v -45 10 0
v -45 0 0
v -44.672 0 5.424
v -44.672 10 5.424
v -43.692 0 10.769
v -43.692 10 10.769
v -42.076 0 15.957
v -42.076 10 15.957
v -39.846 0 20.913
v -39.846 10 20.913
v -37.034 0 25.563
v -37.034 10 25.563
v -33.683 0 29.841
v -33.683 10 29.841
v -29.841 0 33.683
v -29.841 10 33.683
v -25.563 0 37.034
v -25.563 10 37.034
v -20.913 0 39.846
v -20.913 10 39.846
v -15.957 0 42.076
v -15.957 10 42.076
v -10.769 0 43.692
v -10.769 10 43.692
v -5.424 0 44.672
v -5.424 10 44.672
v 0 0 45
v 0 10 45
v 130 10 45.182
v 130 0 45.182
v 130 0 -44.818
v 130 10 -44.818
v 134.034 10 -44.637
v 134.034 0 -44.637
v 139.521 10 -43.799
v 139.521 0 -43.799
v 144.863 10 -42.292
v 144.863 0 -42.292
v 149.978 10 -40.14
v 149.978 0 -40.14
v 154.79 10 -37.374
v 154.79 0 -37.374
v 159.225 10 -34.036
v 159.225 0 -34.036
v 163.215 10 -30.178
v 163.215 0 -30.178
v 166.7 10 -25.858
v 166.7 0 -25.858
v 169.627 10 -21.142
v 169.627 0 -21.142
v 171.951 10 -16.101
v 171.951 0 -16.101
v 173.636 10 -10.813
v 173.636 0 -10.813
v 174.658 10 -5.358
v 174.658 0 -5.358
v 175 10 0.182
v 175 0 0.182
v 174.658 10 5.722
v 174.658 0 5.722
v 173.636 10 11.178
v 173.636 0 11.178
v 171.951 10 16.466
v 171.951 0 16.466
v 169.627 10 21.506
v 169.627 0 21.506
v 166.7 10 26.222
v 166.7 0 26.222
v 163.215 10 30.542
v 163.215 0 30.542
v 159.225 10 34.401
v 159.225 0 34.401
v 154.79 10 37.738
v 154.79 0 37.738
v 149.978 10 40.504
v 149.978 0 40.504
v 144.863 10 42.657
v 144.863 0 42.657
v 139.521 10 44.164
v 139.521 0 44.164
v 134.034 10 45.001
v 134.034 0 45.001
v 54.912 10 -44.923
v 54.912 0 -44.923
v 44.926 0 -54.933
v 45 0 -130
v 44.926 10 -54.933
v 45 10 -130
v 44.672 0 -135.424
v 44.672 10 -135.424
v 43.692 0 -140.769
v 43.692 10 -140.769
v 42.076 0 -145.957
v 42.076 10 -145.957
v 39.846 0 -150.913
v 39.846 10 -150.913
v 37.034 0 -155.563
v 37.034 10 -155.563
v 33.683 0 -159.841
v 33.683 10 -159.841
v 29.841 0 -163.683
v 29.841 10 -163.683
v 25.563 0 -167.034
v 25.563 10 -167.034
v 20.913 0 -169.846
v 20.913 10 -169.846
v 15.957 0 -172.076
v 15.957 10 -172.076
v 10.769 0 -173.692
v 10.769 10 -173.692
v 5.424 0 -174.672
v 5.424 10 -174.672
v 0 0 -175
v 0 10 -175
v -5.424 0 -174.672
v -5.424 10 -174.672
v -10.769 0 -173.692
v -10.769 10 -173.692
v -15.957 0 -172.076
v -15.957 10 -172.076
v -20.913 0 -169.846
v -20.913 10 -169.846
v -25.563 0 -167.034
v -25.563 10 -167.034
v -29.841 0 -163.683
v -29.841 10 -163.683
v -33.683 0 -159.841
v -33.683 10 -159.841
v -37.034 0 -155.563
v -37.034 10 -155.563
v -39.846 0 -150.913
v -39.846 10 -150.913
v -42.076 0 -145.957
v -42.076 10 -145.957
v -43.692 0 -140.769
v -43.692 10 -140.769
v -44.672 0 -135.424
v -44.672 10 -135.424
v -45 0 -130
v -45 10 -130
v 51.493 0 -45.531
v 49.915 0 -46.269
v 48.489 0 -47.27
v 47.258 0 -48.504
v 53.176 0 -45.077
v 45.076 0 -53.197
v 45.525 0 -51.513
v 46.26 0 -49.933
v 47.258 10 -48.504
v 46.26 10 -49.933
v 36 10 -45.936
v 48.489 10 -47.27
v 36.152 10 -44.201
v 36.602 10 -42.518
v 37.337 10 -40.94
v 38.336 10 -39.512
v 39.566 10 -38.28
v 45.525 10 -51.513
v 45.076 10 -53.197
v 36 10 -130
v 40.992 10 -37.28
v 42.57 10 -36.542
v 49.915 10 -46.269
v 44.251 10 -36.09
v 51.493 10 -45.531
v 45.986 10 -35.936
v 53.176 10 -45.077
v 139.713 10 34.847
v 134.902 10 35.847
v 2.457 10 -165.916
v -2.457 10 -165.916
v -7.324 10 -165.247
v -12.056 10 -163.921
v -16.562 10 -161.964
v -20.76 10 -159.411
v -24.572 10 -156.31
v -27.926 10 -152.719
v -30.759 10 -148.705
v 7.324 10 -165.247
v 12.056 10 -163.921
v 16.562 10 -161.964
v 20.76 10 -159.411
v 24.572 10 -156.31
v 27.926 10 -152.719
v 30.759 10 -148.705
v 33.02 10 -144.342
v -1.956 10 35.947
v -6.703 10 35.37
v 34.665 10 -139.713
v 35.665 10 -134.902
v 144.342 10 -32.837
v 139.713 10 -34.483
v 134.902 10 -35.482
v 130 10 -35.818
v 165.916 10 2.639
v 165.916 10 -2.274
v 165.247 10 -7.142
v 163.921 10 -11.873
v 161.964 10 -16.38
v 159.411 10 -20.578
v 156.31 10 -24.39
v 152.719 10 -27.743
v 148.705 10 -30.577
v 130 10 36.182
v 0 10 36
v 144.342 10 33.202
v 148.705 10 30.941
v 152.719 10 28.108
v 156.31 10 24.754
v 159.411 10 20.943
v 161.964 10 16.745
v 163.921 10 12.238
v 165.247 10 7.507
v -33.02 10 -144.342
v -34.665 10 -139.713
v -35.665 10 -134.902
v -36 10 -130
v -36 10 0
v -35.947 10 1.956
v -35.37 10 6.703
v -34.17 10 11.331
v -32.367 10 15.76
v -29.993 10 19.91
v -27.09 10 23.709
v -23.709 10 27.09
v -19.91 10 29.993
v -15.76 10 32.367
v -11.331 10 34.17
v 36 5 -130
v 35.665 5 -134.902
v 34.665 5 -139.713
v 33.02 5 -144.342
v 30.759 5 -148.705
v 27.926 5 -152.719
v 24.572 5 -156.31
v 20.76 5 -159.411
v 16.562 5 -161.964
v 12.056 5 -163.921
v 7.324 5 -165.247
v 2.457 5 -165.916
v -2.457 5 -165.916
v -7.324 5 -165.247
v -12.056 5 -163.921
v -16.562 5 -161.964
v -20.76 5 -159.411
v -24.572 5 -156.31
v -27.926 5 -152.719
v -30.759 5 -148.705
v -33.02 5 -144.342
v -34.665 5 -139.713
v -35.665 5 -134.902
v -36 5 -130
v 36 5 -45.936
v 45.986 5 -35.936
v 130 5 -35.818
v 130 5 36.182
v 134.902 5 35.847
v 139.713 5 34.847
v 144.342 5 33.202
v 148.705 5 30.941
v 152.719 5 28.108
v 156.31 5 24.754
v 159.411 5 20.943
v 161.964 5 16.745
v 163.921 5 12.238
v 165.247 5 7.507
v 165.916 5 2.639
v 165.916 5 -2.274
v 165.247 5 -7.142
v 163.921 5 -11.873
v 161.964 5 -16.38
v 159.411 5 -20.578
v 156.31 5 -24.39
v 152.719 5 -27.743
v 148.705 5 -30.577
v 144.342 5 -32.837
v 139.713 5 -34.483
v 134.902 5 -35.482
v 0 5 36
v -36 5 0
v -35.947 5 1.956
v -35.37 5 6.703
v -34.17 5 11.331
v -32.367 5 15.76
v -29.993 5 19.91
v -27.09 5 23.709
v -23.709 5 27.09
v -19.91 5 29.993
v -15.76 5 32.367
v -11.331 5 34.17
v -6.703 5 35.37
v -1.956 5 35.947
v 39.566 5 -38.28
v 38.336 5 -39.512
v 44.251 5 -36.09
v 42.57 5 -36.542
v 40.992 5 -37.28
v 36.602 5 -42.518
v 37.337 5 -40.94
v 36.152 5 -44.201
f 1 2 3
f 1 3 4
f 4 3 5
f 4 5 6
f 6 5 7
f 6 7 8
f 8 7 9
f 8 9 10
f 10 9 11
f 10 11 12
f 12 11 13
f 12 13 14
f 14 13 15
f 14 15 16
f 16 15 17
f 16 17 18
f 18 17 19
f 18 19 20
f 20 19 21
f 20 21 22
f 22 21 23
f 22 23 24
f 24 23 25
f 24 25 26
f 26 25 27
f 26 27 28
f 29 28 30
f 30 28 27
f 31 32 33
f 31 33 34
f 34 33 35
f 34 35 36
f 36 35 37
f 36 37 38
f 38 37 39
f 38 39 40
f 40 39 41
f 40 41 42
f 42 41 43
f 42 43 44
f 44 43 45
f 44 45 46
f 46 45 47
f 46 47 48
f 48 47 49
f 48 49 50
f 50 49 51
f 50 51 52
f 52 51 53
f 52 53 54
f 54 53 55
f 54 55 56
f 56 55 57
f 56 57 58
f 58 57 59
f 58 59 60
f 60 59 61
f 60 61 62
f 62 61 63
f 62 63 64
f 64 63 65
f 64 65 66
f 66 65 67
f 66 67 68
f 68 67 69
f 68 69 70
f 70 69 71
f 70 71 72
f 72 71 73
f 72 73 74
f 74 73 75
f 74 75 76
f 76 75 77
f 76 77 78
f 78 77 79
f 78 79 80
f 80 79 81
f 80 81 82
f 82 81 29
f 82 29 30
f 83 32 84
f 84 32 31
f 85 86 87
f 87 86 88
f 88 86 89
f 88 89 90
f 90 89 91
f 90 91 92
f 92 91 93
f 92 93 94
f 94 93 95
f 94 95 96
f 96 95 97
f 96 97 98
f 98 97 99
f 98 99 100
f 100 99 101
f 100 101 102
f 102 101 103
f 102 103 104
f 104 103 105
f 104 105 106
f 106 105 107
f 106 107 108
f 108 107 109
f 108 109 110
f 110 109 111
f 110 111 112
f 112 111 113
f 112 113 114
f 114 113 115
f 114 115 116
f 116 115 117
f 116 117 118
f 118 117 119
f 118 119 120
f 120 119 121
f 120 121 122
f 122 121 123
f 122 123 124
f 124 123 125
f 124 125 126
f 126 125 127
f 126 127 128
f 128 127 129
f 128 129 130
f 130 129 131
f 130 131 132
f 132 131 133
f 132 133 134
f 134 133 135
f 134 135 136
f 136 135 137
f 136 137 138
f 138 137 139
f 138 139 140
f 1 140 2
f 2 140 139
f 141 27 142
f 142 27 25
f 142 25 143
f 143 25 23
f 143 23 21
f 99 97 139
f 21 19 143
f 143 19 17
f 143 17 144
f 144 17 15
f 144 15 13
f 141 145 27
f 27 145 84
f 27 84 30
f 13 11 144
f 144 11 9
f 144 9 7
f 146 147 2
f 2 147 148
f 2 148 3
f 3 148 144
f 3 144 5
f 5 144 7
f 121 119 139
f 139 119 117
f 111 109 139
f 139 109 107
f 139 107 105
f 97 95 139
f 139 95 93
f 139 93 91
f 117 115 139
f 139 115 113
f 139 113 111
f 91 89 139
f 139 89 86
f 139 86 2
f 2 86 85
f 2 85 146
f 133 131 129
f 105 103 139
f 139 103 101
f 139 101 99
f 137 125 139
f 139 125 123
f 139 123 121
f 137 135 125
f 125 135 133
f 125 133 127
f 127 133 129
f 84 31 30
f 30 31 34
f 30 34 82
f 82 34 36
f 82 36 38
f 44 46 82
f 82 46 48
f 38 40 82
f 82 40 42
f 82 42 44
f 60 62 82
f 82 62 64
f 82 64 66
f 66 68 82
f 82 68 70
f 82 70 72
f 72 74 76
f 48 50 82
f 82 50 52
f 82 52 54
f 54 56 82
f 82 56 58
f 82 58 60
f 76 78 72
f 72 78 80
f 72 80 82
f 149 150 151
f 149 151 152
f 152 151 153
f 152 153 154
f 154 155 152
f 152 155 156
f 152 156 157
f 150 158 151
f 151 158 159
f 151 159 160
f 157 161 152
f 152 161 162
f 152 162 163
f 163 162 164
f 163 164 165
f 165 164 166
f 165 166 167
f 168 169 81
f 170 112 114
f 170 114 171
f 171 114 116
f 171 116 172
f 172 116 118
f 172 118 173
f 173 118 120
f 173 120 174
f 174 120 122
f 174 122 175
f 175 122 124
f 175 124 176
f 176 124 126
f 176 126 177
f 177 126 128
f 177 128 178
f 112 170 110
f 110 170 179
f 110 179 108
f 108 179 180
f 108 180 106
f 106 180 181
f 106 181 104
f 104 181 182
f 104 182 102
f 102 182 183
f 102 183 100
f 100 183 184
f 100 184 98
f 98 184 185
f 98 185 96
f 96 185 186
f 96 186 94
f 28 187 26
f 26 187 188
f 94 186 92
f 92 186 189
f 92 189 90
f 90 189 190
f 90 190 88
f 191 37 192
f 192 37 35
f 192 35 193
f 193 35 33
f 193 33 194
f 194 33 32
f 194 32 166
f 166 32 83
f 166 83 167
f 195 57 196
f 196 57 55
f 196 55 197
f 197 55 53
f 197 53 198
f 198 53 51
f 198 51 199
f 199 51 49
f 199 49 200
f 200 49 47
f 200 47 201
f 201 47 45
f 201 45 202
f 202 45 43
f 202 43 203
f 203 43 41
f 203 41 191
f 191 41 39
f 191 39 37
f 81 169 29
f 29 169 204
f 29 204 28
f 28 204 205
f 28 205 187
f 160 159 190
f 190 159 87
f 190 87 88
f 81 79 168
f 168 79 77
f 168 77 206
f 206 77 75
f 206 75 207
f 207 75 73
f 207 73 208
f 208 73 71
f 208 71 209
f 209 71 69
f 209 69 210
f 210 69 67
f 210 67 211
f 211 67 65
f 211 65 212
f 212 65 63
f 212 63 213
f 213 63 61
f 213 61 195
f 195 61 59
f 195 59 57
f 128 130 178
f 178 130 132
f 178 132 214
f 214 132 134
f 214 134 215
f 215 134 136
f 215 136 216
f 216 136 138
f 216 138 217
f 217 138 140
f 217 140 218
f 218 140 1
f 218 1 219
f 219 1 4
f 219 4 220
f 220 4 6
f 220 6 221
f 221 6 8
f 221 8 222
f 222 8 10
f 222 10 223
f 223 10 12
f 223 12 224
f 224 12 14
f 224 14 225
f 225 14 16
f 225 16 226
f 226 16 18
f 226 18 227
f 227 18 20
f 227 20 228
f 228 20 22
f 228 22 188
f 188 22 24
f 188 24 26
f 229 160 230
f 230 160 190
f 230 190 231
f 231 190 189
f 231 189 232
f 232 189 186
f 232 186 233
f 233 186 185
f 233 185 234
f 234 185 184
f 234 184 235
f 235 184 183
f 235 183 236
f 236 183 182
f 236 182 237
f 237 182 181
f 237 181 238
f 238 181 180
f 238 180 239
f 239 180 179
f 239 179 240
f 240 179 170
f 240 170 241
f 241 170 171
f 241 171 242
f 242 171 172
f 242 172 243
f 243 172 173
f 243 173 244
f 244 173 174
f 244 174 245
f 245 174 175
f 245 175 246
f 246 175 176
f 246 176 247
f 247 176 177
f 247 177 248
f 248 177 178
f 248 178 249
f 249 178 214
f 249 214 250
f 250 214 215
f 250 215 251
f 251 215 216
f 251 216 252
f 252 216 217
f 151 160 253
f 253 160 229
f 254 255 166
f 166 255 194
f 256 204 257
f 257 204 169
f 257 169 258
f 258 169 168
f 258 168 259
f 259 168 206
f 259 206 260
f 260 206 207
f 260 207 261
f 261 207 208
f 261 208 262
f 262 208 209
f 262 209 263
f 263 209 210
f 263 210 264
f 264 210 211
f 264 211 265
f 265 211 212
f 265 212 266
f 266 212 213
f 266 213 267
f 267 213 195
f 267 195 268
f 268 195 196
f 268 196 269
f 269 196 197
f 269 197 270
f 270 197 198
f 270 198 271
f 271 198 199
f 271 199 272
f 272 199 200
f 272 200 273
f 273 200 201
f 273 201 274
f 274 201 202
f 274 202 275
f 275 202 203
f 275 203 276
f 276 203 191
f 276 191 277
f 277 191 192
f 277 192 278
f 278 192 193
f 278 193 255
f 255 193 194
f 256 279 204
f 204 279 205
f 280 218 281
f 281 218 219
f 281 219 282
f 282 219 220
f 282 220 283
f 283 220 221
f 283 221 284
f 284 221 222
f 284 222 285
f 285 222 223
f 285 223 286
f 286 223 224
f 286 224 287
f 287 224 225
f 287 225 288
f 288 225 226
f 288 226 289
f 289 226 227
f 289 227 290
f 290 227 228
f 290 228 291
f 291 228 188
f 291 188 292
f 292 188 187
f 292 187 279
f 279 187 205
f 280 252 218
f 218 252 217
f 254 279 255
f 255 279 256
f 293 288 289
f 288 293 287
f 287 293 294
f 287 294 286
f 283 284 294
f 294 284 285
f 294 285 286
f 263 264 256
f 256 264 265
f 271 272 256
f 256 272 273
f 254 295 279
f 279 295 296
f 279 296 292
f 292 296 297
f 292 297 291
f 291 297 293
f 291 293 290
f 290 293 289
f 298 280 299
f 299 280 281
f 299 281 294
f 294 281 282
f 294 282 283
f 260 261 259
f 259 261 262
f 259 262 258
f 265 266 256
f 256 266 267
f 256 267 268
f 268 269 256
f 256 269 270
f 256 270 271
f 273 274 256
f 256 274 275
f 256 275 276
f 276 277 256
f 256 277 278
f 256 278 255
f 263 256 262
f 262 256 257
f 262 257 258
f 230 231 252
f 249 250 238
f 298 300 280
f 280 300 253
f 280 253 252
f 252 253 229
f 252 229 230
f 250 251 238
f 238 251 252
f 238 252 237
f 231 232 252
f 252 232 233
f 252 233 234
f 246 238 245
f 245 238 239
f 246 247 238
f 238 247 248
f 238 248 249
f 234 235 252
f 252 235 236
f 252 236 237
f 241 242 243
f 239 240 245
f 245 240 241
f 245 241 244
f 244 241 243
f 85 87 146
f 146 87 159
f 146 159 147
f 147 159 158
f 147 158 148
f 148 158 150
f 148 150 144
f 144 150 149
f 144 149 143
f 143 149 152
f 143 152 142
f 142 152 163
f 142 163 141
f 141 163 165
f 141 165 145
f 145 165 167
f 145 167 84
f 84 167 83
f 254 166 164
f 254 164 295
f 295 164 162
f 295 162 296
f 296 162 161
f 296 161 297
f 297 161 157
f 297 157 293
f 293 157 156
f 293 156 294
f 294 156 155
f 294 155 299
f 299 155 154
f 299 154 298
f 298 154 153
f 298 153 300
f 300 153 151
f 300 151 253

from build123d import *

# Parameters (mm, degrees)
BOSS_EXTRUDE1_DEPTH = 10
CUT_EXTRUDE1_START  = -5
CUT_EXTRUDE1_DEPTH  = 5
FILLET1_R           = 10
FILLET2_R           = 10


# Read off the part's stored shape, not the designer's step: Cut-Extrude1
with BuildPart() as part:
    # Sketch1 → Boss-Extrude1 (new body)
    with BuildSketch(Plane(origin=(0, 0, 0), x_dir=(1, 0, 0), z_dir=(0, 1, 0))):
        with BuildLine():
            ThreePointArc((130, -45.182255659), (175, -0.182255659), (130, 44.817744341))
            Line((130, 44.817744341), (44.916086644, 44.937029146))
            Line((44.916086644, 44.937029146), (45, 130))
            ThreePointArc((45, 130), (0, 175), (-45, 130))
            Line((-45, 130), (-45, 0))
            ThreePointArc((-45, 0), (-31.819805153, -31.819805153), (0, -45))
            Line((0, -45), (130, -45.182255659))
        make_face()
    extrude(amount=BOSS_EXTRUDE1_DEPTH)

    # Cut-Extrude1 outline → Cut-Extrude1 (cut)
    with BuildSketch(Plane(origin=(0, 10, 0), x_dir=(1, 0, 0), z_dir=(0, 1, 0)).offset(CUT_EXTRUDE1_START)):
        with BuildLine():
            Line((36, 35.949529202), (36, 130))
            ThreePointArc((36, 130), (0, 166), (-36, 130))
            Line((-36, 130), (-36, 0))
            ThreePointArc((-36, 0), (-25.455844123, -25.455844123), (0, -36))
            Line((0, -36), (130, -36.182255659))
            ThreePointArc((130, -36.182255659), (166, -0.182255659), (130, 35.817744341))
            Line((130, 35.817744341), (36, 35.949529202))
        make_face()
    extrude(amount=CUT_EXTRUDE1_DEPTH, mode=Mode.SUBTRACT)

    # Fillet1
    fillet1_edges = [part.edges().sort_by_distance(p)[0] for p in [
        (44.916086644, 5, -44.937029146),
    ]]
    fillet(fillet1_edges, radius=FILLET1_R)

    # Fillet2
    fillet2_edges = [part.edges().sort_by_distance(p)[0] for p in [
        (36, 7.5, -35.949529202),
    ]]
    fillet(fillet2_edges, radius=FILLET2_R)


solid = part.part
